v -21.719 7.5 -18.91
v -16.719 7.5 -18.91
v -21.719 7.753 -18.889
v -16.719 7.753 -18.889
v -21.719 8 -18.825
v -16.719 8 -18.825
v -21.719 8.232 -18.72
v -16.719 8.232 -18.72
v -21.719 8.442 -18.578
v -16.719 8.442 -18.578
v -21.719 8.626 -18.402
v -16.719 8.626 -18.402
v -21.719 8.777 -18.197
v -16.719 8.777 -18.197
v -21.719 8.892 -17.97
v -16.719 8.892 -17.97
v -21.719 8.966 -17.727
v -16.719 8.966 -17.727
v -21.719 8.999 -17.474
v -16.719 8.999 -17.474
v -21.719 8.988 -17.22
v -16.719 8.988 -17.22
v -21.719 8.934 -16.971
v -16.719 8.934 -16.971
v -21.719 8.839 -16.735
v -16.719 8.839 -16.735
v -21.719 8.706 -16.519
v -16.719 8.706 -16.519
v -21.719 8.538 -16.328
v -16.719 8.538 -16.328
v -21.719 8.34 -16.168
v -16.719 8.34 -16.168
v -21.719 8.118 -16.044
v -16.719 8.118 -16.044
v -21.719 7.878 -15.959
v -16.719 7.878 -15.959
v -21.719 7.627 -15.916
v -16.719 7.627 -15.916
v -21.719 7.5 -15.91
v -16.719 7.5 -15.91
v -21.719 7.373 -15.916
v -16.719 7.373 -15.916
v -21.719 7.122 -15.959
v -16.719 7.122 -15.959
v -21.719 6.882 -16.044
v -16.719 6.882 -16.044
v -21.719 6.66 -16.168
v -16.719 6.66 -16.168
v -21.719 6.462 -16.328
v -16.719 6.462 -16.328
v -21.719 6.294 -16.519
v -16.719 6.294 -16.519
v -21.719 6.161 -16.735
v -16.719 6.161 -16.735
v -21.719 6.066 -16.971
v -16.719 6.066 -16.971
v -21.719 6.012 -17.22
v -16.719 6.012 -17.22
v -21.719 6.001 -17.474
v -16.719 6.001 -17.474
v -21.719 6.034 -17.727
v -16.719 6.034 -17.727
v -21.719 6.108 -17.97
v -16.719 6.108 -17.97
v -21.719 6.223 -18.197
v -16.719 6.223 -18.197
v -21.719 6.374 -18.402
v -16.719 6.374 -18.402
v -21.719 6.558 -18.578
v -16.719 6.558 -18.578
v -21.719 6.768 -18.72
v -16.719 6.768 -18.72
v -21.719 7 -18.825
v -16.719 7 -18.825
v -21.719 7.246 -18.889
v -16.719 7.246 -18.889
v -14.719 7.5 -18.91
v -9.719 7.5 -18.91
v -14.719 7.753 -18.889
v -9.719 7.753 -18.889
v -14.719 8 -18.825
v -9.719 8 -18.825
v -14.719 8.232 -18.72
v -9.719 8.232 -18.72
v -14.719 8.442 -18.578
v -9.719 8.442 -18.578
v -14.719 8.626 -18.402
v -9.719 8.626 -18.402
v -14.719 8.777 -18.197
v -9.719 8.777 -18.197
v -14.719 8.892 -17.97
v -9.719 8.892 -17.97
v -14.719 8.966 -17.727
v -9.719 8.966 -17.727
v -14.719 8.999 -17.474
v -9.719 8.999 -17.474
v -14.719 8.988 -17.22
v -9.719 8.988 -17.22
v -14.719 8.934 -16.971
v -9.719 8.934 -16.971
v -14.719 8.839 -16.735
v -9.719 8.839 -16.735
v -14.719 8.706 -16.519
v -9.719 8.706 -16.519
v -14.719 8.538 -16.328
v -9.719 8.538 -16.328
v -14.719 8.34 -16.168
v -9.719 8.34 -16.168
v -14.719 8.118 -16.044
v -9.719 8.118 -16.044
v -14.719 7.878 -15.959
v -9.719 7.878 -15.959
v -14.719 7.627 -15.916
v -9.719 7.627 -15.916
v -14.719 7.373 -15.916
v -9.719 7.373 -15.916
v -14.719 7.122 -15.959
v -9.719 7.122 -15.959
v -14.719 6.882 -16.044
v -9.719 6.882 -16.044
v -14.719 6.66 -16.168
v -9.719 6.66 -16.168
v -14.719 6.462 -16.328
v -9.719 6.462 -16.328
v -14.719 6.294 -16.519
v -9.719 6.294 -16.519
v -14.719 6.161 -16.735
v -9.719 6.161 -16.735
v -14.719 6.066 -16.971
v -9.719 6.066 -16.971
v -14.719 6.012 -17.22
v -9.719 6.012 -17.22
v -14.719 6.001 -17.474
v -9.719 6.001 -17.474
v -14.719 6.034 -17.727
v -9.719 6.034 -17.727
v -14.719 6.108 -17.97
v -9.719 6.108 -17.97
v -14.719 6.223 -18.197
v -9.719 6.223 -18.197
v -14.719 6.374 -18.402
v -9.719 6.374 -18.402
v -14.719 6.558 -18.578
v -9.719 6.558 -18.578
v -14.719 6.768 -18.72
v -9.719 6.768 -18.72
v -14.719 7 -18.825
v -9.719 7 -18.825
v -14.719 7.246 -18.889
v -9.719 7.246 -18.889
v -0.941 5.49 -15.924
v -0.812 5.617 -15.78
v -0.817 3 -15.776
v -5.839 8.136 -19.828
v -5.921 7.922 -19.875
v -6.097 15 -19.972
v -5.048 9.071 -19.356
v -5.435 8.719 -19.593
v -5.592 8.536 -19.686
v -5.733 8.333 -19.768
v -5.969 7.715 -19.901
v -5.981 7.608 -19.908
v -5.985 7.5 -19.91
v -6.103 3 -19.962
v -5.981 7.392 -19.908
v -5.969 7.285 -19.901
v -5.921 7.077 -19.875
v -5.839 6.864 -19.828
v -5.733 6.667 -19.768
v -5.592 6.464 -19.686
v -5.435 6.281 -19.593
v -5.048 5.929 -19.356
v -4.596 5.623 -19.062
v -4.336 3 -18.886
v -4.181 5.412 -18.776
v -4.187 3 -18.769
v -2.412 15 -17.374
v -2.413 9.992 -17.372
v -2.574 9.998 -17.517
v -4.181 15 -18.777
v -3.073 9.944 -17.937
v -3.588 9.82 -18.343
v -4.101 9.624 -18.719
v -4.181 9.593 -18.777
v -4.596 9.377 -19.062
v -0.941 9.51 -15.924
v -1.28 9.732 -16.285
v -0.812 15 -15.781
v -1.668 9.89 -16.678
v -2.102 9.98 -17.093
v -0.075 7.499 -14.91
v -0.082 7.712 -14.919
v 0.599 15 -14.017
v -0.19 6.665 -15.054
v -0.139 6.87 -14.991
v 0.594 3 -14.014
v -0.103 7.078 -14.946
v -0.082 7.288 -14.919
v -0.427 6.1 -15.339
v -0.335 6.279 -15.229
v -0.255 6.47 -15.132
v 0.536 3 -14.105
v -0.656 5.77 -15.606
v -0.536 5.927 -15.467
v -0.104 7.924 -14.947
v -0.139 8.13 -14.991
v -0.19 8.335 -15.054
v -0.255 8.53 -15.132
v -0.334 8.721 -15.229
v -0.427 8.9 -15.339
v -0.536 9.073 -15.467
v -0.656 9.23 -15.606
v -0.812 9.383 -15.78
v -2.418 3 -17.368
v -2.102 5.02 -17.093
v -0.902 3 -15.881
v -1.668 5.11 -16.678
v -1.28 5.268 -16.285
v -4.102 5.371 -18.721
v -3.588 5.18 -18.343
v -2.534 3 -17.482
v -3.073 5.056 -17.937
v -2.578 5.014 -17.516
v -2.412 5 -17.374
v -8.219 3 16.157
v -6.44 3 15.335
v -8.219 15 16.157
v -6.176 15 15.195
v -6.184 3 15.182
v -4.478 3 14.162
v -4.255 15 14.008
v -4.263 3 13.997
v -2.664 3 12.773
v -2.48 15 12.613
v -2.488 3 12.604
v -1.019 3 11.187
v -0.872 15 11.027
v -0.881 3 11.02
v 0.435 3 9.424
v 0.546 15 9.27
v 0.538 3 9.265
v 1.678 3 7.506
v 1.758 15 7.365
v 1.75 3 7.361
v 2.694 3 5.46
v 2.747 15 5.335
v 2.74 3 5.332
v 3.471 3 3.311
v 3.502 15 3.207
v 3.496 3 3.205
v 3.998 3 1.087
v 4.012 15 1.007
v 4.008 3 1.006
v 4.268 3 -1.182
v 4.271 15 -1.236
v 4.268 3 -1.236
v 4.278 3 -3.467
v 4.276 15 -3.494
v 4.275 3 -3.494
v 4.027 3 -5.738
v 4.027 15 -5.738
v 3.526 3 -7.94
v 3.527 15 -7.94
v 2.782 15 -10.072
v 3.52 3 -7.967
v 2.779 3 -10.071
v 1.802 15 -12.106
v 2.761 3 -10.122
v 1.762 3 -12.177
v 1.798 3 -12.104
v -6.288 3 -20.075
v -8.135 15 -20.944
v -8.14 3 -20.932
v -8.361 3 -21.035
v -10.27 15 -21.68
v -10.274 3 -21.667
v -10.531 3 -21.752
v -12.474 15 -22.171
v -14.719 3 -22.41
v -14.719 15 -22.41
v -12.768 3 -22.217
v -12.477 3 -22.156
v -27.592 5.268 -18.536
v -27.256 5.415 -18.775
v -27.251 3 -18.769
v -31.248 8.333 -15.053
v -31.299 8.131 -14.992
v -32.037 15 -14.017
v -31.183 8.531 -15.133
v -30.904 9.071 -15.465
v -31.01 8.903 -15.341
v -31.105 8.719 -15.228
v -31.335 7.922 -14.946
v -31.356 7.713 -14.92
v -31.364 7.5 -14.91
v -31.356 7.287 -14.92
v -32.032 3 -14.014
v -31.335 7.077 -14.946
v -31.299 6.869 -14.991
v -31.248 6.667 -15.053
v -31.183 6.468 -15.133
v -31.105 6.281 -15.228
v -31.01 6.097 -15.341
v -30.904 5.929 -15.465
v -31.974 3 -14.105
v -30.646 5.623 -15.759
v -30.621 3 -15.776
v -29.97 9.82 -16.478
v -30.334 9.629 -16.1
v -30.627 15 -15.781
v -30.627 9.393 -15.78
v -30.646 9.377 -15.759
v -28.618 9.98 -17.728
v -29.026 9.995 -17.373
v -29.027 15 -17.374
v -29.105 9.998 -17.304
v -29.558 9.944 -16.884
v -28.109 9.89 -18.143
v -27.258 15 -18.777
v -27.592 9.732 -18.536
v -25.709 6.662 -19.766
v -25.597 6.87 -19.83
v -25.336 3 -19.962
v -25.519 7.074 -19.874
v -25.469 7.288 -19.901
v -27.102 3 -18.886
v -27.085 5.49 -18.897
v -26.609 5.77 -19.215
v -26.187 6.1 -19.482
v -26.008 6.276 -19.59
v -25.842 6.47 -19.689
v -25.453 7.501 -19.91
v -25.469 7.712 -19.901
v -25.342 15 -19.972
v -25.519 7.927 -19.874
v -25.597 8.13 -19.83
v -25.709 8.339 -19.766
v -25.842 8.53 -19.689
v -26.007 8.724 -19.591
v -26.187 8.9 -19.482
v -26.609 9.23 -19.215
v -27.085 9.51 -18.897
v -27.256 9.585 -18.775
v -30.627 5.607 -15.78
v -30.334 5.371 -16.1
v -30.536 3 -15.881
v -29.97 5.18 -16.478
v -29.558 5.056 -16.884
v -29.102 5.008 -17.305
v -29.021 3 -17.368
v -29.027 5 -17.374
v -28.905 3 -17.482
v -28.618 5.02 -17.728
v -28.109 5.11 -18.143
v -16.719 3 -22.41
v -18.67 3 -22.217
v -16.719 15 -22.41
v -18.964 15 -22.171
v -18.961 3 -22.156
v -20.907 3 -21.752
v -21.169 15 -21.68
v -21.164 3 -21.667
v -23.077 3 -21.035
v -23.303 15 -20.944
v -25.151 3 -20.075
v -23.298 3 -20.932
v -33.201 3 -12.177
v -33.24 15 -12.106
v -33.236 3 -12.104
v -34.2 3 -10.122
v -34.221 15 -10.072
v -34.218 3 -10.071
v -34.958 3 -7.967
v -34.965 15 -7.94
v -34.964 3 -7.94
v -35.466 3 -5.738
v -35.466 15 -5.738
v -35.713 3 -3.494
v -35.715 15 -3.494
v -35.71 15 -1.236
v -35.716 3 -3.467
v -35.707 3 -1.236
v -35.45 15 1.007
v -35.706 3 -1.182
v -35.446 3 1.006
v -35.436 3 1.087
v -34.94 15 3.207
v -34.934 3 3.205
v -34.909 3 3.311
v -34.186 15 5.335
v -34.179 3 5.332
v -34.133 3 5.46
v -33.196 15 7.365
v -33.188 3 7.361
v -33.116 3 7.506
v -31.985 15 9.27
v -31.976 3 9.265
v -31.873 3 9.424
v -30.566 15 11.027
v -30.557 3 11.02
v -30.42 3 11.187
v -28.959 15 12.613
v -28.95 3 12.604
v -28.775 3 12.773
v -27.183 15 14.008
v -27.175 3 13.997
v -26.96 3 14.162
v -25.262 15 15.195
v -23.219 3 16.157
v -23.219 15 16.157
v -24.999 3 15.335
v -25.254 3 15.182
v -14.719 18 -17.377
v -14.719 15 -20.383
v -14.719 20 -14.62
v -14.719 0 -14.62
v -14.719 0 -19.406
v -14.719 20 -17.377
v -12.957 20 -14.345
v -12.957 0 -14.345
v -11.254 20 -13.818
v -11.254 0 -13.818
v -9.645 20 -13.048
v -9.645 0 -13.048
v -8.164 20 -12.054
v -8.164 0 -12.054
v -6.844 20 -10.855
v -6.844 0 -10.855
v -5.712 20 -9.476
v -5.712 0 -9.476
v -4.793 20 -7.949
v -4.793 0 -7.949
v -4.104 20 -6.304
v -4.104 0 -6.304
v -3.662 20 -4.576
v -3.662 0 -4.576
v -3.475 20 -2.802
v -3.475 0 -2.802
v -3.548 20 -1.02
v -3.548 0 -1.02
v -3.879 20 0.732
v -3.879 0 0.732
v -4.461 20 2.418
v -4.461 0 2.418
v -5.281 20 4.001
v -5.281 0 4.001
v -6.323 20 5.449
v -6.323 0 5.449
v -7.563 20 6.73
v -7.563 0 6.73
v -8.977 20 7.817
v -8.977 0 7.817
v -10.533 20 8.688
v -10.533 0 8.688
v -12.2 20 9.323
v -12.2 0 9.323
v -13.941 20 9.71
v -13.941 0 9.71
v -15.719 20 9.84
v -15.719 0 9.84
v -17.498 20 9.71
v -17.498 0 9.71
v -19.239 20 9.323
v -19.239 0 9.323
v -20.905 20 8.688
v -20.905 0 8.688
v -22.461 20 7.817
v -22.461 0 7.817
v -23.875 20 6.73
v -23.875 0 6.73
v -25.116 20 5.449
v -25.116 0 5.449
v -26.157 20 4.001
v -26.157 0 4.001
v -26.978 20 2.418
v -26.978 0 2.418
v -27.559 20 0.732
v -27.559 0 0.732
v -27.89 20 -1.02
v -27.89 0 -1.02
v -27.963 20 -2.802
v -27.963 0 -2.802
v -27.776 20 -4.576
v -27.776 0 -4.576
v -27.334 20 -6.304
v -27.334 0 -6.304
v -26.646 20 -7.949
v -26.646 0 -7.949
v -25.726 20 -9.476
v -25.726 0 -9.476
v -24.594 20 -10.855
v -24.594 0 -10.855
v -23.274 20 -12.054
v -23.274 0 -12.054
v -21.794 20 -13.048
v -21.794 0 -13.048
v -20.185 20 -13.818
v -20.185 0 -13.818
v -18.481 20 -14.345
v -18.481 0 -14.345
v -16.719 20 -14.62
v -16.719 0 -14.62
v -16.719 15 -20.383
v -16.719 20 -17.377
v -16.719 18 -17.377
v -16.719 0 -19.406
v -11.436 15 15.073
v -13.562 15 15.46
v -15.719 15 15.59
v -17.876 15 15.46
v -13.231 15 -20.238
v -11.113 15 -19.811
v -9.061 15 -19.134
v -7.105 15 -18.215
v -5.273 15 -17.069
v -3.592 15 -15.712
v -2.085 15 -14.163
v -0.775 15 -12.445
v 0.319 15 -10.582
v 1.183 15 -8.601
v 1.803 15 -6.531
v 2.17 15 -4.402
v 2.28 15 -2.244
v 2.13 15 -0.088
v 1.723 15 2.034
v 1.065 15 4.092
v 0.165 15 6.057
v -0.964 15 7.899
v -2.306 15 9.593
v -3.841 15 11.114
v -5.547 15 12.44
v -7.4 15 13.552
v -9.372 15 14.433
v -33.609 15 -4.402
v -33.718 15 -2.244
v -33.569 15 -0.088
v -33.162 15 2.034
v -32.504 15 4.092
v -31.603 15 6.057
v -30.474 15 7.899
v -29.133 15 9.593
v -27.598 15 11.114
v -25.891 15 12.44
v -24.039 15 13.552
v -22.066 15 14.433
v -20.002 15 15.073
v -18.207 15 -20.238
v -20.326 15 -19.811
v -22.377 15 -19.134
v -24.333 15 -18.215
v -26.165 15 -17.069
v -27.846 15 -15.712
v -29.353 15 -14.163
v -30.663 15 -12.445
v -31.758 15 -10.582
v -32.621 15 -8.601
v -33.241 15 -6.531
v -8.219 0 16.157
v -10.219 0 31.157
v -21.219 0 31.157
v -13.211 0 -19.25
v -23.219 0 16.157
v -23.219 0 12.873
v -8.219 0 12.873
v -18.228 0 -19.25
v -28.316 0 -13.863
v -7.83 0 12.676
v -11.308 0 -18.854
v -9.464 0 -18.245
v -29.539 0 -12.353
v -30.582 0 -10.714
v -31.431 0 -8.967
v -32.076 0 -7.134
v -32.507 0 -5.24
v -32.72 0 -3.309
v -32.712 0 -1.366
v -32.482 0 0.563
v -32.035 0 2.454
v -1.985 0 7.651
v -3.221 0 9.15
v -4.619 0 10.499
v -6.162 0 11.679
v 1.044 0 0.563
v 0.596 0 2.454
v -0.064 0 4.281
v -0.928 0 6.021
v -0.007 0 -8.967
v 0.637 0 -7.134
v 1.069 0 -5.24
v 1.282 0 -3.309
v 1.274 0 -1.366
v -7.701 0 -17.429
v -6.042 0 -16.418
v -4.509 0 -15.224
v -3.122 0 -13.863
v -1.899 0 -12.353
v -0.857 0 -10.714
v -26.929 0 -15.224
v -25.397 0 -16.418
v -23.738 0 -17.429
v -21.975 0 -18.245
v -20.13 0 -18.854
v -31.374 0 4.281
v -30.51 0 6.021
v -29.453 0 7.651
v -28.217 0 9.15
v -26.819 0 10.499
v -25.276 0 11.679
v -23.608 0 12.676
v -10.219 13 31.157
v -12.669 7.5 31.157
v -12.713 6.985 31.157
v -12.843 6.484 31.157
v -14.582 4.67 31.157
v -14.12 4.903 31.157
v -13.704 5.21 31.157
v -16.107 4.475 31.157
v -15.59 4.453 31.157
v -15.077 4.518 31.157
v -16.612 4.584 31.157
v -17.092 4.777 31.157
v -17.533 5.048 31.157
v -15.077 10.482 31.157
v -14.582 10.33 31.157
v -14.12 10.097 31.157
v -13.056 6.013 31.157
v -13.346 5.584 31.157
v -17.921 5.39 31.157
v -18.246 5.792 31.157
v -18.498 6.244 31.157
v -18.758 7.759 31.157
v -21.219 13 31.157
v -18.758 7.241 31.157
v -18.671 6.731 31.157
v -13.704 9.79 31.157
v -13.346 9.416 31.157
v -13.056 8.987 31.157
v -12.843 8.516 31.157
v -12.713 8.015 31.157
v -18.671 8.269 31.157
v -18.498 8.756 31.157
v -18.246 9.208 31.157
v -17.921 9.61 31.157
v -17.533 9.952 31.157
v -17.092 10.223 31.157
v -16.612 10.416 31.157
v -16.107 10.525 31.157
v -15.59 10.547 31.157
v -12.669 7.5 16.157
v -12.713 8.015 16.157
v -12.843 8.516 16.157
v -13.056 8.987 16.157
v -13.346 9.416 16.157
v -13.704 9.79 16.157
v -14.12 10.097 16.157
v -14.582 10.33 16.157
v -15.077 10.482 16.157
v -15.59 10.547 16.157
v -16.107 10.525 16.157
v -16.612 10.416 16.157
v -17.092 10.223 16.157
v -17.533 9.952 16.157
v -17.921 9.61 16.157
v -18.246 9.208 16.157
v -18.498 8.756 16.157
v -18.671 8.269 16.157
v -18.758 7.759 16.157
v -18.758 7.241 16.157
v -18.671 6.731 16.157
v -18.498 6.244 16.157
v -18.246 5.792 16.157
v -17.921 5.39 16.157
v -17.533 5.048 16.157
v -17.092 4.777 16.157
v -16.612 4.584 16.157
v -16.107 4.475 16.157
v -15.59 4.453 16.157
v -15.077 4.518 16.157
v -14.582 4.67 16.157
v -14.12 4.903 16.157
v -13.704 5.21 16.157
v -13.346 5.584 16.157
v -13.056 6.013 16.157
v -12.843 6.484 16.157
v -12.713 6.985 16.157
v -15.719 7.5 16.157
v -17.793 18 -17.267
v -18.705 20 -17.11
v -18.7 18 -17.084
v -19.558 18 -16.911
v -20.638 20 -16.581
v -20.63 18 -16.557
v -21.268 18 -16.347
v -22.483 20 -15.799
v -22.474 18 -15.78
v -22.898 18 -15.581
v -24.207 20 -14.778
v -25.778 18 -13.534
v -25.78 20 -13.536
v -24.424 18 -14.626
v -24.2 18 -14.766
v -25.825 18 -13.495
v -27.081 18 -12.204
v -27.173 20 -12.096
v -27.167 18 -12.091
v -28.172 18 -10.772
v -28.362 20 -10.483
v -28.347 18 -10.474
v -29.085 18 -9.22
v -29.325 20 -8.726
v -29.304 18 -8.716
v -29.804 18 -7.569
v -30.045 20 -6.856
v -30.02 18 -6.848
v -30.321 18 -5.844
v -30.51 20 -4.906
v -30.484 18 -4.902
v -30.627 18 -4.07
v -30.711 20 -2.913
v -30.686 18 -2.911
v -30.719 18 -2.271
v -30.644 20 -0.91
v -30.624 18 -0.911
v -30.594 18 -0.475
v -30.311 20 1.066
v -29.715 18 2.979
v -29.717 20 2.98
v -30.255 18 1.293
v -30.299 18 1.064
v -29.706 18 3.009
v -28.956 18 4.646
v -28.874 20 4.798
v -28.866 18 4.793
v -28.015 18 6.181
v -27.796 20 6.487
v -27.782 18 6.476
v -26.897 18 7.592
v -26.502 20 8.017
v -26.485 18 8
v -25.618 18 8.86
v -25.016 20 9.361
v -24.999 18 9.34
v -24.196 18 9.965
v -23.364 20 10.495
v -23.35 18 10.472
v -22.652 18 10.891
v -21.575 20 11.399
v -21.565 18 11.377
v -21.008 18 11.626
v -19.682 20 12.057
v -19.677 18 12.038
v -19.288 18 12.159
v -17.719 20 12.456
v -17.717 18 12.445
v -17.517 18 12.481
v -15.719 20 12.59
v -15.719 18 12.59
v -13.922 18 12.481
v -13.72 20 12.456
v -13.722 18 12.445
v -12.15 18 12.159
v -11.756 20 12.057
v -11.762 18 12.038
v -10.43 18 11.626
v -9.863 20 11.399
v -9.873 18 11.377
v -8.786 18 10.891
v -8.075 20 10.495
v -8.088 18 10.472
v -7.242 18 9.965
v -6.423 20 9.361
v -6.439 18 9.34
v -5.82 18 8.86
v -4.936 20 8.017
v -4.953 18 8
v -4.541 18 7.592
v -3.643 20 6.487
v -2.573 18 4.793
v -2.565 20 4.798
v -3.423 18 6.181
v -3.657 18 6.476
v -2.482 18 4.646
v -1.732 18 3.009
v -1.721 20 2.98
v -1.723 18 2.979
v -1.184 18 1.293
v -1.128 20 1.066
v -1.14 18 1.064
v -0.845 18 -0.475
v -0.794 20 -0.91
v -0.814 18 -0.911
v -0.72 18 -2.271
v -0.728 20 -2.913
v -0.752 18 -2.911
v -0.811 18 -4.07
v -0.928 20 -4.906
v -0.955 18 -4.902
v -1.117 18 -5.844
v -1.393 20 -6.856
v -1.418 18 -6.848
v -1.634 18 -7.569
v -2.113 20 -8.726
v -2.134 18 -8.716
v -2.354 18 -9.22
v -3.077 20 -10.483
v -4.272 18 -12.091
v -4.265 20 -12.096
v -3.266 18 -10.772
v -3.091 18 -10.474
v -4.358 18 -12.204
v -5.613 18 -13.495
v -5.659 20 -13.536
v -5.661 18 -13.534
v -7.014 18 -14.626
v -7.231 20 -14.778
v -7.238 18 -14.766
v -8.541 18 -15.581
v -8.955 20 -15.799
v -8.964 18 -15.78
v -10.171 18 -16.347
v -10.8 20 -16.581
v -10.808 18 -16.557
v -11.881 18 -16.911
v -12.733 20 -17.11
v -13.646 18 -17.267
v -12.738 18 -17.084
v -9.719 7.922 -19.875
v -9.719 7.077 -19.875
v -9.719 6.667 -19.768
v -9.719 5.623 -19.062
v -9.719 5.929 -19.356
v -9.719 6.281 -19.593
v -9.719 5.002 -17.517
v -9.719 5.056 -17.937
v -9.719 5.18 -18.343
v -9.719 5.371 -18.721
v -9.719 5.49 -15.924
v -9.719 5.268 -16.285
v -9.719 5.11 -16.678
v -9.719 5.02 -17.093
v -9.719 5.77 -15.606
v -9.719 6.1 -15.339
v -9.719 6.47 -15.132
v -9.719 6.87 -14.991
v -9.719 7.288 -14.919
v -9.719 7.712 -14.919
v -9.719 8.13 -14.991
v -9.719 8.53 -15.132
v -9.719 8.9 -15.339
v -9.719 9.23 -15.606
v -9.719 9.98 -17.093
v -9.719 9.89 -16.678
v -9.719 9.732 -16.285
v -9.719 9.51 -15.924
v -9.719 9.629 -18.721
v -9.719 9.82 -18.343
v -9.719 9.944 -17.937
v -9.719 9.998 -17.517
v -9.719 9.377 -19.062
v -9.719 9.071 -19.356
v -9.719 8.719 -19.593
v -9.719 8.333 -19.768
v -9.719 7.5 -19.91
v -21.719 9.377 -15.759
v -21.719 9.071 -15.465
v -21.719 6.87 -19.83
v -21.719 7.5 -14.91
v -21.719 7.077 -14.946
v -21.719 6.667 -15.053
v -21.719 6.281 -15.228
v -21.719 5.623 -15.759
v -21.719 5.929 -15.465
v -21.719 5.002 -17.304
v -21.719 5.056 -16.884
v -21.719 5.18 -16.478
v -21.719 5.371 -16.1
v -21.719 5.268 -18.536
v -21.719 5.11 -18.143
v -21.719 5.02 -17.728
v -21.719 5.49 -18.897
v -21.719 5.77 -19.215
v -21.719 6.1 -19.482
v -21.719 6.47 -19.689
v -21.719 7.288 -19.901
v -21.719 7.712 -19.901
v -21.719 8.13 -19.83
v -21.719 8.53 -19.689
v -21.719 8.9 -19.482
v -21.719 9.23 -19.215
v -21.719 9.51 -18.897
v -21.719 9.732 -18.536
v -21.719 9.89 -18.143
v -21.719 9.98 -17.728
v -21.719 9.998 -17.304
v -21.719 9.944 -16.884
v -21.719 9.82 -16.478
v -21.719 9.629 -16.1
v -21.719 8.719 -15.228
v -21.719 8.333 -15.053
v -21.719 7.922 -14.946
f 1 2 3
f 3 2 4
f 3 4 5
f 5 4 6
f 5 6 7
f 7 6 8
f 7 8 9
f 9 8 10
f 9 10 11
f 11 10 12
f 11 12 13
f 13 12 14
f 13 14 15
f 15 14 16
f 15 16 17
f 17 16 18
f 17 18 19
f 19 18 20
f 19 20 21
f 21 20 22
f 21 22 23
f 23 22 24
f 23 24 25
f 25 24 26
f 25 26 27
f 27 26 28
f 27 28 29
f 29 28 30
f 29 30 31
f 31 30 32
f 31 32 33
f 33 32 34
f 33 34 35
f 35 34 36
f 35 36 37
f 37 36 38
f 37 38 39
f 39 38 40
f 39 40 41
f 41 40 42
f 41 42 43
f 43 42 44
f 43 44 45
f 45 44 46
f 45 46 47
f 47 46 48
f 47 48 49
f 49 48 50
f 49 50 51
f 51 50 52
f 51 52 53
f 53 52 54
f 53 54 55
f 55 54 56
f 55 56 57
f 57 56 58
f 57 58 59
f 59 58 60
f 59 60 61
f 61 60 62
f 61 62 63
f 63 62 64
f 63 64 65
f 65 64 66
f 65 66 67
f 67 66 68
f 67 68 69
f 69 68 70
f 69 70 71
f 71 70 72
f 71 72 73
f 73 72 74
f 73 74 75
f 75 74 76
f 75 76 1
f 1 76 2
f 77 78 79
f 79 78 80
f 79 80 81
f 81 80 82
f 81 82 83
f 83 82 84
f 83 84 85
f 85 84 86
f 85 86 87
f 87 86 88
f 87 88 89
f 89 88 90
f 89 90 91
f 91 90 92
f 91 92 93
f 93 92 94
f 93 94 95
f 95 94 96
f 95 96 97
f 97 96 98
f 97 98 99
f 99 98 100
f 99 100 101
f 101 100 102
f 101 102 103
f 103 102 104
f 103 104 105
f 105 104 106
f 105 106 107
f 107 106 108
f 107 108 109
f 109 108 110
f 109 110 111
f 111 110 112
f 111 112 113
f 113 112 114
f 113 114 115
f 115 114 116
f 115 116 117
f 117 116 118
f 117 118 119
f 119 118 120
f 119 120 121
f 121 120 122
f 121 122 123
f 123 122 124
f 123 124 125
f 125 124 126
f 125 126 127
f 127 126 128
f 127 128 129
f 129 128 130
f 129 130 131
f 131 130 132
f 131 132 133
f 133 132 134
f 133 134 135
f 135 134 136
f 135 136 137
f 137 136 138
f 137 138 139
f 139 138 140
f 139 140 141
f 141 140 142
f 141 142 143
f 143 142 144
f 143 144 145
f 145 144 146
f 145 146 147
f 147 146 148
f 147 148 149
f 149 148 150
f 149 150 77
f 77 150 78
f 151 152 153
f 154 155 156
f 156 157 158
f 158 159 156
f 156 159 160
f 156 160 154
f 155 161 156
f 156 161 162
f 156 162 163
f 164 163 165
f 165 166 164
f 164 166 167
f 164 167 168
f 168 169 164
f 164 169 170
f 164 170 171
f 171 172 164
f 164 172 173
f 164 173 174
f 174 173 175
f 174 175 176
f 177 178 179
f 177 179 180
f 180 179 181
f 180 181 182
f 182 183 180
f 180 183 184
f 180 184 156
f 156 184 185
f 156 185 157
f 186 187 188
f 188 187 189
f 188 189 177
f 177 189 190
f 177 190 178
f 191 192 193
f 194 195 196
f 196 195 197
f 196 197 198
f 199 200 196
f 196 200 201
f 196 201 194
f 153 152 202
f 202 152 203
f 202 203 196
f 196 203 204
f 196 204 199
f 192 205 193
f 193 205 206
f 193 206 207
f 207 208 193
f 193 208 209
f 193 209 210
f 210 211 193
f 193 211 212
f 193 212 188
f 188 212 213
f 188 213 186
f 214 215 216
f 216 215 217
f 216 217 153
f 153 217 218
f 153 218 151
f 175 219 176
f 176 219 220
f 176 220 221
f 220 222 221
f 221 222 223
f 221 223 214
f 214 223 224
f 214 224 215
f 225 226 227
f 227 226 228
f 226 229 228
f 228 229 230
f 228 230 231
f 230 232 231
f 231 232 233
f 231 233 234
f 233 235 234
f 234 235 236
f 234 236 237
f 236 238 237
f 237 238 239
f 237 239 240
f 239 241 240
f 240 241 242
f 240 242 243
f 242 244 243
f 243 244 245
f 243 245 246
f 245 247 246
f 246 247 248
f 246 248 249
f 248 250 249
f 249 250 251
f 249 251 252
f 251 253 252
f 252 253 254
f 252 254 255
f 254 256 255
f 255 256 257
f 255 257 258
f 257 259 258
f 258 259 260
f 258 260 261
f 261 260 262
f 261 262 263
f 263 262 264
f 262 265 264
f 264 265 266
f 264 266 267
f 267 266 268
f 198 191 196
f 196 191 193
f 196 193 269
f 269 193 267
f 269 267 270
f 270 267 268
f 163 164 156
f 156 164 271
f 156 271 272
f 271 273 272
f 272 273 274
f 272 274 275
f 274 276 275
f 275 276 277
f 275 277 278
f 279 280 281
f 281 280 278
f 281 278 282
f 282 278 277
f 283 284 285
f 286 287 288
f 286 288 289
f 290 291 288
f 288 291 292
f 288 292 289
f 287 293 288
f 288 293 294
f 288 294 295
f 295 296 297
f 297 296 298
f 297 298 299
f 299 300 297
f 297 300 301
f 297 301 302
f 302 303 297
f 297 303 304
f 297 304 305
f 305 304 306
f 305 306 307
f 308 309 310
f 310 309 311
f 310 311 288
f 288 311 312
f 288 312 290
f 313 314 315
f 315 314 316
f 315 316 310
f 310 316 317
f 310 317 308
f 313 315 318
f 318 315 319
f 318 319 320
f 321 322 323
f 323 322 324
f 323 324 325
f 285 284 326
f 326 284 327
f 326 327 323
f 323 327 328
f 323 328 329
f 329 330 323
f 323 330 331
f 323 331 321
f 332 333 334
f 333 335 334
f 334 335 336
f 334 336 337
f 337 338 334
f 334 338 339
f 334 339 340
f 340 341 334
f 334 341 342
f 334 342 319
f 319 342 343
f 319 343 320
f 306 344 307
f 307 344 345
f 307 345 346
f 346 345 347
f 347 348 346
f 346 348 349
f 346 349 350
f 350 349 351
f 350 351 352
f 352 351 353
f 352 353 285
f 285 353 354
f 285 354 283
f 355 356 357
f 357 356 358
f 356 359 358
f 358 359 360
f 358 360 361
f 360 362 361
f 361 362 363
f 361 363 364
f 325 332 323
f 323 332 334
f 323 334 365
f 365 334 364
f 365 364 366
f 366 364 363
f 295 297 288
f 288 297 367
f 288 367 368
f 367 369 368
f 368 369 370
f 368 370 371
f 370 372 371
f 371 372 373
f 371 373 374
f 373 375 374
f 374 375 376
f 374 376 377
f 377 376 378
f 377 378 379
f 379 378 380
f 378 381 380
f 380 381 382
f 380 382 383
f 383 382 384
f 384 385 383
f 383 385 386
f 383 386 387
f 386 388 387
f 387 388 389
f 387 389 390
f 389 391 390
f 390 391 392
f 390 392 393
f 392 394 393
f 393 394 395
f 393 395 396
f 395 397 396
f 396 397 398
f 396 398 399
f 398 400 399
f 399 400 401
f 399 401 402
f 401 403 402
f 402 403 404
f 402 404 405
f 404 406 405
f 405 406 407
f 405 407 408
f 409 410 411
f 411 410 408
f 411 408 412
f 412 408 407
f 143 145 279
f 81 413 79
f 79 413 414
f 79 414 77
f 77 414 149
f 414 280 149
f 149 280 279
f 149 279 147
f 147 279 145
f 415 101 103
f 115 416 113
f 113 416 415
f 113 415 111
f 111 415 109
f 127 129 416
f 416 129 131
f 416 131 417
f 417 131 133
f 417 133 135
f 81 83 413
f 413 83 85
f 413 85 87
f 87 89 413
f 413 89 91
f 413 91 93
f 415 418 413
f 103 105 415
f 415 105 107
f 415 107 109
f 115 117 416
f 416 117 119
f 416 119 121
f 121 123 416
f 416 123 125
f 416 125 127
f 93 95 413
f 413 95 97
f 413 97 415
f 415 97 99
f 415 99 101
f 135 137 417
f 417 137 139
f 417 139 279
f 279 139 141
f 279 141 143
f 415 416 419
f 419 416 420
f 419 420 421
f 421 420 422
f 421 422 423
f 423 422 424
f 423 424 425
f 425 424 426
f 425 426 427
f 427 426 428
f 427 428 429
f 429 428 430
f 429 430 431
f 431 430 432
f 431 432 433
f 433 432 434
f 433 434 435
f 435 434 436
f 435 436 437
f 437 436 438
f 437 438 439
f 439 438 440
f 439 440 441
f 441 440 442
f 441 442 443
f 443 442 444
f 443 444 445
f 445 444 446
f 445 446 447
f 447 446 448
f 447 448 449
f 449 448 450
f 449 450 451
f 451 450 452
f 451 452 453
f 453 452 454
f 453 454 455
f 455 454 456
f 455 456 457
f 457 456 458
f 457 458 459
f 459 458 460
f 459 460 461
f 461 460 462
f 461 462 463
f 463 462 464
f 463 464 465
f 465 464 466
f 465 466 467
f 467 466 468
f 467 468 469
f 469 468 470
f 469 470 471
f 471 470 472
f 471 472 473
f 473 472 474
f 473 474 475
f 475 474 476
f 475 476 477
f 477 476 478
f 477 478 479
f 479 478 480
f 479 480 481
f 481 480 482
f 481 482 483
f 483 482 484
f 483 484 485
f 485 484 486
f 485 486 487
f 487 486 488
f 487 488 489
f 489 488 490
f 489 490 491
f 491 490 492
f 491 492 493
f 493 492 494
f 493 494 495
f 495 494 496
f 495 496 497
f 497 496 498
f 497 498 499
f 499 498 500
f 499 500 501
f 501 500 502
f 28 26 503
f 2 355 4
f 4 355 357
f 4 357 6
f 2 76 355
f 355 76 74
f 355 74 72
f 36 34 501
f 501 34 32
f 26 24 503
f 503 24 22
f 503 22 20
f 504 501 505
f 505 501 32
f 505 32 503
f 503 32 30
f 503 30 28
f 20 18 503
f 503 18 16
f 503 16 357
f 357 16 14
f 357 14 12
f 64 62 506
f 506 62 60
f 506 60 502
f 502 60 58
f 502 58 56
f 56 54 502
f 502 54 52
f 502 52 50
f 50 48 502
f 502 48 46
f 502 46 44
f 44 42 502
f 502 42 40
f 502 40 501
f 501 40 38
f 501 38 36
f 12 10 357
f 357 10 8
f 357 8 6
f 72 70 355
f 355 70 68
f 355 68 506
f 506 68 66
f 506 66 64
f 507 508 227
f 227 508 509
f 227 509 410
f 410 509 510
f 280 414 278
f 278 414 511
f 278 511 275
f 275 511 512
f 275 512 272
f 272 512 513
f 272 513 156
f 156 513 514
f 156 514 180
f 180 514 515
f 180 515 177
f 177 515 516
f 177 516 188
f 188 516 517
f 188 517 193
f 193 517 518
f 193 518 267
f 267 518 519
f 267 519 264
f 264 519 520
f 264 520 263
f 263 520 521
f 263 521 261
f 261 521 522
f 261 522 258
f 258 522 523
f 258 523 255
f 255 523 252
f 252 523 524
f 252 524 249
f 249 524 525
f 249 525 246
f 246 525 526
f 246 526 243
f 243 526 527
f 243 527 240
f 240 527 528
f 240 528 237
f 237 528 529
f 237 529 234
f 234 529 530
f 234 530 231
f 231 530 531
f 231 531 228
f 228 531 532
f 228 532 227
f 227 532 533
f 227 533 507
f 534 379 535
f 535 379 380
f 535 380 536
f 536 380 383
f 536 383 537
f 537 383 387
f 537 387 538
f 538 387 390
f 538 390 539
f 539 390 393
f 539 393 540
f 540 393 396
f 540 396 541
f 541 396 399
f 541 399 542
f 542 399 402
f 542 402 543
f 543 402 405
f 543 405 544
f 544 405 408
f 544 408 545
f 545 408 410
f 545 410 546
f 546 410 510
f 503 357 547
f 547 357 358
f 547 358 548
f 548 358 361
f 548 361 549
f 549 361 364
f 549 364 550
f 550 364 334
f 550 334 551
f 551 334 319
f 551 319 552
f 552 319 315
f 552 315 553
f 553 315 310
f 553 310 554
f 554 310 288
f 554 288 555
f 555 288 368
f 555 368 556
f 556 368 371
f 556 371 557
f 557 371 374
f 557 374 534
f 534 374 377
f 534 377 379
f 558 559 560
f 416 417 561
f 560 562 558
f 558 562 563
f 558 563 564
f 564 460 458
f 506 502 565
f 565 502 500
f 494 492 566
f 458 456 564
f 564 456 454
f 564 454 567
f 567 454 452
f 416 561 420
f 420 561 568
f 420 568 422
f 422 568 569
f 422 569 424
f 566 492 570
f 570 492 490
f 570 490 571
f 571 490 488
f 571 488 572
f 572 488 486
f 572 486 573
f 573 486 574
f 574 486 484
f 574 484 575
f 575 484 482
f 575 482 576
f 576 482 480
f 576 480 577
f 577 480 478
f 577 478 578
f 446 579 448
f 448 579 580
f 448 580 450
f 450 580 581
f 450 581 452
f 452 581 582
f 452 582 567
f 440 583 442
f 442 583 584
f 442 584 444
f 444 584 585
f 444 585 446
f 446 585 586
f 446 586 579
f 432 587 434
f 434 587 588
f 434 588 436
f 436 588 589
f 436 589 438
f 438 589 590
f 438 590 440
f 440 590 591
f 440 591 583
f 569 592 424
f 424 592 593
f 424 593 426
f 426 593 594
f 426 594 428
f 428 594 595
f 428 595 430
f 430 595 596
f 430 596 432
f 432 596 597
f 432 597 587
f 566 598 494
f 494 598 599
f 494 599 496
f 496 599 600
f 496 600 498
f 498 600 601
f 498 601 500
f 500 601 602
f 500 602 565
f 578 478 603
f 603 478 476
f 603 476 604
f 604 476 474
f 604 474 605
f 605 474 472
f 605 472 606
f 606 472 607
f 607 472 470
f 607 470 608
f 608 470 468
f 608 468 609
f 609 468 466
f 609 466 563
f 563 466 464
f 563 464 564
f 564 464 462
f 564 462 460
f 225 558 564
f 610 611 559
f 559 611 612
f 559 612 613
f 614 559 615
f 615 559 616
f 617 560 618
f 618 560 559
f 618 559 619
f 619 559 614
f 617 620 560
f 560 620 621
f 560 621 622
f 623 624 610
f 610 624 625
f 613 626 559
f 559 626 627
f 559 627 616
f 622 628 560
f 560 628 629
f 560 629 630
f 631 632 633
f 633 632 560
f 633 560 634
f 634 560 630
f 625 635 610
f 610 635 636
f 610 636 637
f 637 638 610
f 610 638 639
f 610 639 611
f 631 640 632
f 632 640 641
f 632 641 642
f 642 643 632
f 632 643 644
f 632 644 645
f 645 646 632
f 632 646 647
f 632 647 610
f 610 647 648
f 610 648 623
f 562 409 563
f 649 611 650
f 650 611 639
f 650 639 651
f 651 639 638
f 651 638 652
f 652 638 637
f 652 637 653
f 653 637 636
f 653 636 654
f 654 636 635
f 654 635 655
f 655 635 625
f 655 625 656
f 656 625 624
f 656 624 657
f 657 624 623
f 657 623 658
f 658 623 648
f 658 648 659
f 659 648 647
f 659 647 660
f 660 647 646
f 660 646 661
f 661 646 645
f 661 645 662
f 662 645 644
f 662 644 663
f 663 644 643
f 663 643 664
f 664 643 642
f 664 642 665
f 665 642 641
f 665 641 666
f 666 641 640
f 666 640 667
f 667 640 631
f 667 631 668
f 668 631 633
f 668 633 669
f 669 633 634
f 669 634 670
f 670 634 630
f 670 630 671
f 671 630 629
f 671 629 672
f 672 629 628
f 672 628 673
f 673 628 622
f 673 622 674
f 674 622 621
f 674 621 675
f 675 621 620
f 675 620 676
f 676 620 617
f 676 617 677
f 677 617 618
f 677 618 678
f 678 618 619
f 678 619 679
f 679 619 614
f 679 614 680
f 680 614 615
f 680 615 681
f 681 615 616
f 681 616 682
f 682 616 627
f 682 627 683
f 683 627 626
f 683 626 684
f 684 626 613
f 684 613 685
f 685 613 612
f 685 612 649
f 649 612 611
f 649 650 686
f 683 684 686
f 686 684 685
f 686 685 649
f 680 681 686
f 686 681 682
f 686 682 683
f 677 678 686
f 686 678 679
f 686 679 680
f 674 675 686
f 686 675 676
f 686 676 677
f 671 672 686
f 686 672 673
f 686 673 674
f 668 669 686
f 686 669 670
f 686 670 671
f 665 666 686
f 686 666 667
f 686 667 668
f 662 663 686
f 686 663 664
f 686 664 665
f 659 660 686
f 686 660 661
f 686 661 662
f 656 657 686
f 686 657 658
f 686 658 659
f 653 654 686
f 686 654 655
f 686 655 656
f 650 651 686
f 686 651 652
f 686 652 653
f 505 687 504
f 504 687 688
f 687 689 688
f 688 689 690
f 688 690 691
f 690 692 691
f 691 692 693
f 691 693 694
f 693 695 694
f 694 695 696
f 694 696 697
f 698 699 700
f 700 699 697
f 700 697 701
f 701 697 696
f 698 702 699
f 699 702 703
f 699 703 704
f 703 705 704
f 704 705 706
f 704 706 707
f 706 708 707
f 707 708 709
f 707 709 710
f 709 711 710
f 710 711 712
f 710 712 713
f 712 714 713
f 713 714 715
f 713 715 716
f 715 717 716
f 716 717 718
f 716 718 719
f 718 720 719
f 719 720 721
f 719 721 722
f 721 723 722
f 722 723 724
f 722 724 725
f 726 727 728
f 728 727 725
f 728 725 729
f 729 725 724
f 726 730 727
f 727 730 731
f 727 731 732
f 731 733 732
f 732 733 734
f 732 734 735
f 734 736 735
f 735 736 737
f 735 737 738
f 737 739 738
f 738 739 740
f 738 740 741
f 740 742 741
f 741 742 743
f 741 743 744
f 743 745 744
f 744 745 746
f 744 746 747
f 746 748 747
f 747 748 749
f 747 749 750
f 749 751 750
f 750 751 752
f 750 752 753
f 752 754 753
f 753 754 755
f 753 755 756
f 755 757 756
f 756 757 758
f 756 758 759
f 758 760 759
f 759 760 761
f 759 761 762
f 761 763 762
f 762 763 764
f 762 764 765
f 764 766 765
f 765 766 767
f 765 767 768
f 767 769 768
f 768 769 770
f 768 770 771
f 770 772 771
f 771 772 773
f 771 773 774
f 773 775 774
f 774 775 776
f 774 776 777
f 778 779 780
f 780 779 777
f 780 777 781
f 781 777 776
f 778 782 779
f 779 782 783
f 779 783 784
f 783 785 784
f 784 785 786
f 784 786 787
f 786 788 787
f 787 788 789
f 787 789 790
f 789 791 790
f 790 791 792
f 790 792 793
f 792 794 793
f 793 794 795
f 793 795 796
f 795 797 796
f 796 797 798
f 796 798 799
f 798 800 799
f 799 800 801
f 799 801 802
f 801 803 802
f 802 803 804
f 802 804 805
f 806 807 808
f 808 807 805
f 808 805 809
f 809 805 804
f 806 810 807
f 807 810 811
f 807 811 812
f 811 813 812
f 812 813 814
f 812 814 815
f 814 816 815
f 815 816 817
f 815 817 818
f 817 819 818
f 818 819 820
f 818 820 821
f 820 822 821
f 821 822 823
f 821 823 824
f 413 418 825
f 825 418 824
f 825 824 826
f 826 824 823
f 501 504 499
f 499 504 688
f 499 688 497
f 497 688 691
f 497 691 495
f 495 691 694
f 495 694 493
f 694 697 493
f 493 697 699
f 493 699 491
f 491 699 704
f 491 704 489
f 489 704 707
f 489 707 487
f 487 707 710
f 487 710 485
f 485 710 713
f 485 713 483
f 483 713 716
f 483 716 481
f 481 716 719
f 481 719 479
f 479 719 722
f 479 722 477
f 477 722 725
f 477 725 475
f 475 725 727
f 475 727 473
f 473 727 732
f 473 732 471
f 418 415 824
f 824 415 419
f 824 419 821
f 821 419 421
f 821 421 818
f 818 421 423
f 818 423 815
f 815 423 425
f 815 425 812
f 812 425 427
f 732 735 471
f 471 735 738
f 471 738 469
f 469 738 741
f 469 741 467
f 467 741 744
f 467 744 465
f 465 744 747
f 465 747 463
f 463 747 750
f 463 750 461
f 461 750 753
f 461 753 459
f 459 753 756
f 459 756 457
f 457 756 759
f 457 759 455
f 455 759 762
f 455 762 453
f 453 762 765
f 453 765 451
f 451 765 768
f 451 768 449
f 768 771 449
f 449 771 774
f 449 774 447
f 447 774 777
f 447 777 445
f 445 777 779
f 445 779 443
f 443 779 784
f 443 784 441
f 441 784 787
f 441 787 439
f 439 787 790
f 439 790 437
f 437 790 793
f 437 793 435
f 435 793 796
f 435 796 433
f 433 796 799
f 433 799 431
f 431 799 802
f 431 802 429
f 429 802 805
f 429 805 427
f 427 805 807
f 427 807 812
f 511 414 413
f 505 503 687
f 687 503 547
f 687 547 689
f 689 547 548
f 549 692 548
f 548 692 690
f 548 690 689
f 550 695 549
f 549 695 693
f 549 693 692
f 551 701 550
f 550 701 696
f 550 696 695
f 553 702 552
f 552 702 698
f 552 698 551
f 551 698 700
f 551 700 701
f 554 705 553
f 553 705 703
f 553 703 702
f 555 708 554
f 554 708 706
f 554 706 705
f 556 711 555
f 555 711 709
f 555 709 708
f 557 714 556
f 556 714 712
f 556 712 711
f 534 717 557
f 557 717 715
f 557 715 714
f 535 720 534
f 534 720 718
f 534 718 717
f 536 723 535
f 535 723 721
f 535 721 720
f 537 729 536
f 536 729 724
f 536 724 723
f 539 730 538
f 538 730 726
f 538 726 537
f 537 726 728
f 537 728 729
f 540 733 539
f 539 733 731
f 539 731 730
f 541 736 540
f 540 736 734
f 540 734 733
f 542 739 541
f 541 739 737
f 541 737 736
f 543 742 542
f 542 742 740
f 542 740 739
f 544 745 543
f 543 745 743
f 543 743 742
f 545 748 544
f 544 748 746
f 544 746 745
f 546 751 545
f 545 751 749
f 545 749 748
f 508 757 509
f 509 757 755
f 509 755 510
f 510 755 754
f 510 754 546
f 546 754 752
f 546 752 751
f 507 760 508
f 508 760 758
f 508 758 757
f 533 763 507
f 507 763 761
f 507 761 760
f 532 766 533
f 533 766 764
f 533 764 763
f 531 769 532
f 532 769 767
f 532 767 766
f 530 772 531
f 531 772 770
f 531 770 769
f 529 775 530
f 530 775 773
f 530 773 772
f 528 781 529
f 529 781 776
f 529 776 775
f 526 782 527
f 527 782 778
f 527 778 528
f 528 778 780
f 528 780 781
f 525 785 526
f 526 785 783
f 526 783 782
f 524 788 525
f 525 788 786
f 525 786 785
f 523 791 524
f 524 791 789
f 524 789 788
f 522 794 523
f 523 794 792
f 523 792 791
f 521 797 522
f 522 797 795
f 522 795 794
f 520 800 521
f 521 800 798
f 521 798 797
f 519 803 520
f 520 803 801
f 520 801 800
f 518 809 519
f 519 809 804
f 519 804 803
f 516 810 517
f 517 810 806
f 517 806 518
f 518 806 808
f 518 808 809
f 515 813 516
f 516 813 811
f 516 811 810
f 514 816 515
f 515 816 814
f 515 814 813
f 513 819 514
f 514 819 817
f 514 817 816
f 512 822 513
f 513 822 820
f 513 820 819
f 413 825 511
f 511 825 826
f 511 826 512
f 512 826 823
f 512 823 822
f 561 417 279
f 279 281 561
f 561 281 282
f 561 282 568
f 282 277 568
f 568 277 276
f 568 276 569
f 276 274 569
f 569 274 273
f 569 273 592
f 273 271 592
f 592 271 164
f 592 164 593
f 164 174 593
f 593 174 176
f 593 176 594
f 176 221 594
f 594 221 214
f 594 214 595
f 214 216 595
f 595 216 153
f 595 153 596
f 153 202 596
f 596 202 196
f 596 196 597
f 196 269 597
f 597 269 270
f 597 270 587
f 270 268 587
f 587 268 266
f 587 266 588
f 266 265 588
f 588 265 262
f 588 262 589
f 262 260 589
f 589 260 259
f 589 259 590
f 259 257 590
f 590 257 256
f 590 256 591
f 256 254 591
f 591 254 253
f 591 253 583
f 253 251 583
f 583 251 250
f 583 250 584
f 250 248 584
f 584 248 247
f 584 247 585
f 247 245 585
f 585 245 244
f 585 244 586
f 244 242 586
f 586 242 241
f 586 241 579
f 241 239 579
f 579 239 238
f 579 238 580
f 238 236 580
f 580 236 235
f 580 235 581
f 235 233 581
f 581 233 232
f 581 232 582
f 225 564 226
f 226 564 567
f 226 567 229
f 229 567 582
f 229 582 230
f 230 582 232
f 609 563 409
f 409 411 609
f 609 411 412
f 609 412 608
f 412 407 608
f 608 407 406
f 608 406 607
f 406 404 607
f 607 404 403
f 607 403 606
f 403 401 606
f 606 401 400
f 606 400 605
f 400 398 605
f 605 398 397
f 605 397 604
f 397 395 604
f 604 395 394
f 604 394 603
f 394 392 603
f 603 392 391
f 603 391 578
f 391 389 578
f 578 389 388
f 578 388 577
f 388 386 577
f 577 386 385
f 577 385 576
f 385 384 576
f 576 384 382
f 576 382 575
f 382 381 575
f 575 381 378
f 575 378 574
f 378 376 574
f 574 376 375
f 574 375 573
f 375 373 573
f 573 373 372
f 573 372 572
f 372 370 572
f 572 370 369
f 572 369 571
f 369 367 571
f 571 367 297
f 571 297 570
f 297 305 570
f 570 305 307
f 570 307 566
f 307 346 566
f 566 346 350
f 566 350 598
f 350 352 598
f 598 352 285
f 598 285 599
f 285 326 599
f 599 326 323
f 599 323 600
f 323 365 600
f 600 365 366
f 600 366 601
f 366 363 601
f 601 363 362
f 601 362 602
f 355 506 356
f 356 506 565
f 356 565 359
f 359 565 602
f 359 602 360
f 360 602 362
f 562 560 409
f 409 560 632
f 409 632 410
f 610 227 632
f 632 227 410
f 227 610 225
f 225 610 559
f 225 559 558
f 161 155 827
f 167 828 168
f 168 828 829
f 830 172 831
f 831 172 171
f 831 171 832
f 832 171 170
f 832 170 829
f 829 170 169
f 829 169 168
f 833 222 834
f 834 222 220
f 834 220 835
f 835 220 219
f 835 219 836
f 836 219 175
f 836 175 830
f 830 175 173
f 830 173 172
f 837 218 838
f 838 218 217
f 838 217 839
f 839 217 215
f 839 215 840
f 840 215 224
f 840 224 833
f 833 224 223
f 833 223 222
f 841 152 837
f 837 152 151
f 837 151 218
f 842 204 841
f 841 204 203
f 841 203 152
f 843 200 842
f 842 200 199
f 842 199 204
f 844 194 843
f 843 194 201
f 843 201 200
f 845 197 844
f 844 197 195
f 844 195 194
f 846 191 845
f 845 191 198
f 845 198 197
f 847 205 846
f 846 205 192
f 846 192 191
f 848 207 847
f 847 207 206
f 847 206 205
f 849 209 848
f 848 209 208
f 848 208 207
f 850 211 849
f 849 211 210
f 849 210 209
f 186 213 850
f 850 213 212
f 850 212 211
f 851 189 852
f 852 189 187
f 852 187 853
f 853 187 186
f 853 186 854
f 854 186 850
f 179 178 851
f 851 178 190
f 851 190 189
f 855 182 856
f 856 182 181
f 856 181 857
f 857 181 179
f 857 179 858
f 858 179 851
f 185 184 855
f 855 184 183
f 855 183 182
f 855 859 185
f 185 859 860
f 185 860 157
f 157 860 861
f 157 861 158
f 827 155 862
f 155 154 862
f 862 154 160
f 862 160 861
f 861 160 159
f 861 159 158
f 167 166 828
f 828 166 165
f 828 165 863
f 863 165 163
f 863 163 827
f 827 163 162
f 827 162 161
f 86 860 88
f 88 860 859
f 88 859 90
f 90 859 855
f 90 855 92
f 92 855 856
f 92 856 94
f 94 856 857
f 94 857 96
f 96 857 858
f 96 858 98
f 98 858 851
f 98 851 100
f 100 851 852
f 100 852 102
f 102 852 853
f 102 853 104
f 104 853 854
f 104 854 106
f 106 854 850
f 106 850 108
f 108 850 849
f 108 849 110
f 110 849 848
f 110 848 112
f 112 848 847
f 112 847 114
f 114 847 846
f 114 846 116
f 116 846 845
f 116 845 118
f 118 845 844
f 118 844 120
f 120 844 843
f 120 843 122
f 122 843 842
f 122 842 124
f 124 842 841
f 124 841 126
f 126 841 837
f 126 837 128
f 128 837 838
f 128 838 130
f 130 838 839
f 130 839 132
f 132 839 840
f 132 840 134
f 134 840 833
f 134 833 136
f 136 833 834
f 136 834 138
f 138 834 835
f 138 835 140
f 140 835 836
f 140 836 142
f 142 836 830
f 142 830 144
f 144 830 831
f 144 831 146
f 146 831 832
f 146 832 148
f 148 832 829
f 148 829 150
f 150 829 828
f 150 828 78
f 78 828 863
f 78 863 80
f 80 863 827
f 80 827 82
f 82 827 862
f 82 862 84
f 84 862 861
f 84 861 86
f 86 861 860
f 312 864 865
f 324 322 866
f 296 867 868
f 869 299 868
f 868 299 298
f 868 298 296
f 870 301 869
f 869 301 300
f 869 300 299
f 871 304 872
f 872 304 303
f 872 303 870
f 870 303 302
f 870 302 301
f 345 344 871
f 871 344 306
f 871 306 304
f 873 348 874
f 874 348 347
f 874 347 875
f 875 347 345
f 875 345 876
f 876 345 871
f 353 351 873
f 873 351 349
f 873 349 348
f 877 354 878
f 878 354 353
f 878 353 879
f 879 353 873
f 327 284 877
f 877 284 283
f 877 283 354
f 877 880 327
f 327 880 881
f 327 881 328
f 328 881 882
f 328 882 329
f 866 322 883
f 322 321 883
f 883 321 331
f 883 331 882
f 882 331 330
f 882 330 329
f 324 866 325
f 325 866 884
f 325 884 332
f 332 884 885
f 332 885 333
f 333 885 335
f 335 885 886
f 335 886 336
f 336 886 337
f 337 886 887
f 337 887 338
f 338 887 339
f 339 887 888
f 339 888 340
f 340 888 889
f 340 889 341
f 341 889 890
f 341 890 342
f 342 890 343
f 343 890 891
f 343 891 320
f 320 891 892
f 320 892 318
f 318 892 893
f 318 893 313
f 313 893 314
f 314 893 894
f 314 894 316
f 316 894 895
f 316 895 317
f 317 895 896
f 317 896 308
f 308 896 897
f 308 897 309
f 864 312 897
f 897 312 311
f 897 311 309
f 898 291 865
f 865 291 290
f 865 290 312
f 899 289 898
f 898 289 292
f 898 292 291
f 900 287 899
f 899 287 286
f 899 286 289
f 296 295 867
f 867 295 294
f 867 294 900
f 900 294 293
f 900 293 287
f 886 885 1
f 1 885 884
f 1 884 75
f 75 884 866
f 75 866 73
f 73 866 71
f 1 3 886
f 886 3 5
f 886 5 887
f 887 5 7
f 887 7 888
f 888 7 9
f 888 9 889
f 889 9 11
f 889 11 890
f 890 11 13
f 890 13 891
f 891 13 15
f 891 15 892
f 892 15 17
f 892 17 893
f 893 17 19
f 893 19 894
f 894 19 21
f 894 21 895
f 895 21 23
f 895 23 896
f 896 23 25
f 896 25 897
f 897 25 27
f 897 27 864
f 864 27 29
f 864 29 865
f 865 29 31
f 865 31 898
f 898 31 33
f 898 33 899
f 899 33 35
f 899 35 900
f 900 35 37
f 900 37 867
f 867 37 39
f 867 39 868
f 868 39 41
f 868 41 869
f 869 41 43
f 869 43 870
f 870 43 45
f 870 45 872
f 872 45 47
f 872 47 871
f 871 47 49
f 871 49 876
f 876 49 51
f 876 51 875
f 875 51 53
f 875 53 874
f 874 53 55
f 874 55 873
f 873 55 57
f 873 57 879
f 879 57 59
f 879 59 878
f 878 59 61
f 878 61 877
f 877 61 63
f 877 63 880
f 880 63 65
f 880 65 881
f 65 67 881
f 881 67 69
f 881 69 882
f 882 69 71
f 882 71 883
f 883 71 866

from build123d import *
from OCP.BRepFilletAPI import BRepFilletAPI_MakeChamfer

# Parameters (mm, degrees)
BOSS_EXTRUDE1_DEPTH     = 15
SKETCH2_R               = 3.05
CUT_EXTRUDE1_DEPTH      = 15
BOSS_EXTRUDE2_DEPTH     = 5
CHAMFER4_SIZE           = 3
CHAMFER6_SIZE           = 15
CHAMFER6_SIZE_2         = 2
CUT_EXTRUDE2_DEPTH      = 29
CUT_EXTRUDE2_DEPTH_BACK = 25
SKETCH4_R               = 1.5
SKETCH5_R               = 2.5
CUT_EXTRUDE3_DEPTH      = 14.024984395
CUT_EXTRUDE4_START      = -14.024984395
SKETCH6_R               = 2.5
CUT_EXTRUDE4_DEPTH      = 14.024984395


with BuildPart() as part:
    # Sketch1 → Boss-Extrude1 (new body)
    with BuildSketch(Plane(origin=(0, 0, 0), x_dir=(1, 0, 0), z_dir=(0, 1, 0))):
        with BuildLine():
            ThreePointArc((-14.719179189, 14.619614321), (-15.719179189, -9.839501126), (-16.719179189, 14.619614321))
            Line((-16.719179189, 14.619614321), (-16.719179189, 22.410498874))
            ThreePointArc((-16.719179189, 22.410498874), (-35.465683849, 5.738494325), (-23.219179189, -16.156945753))
            Line((-23.219179189, -16.156945753), (-23.219179189, -31.156945753))
            Line((-23.219179189, -31.156945753), (-8.219179189, -31.156945753))
            Line((-8.219179189, -31.156945753), (-8.219179189, -16.156945753))
            ThreePointArc((-8.219179189, -16.156945753), (4.02732547, 5.738494325), (-14.719179189, 22.410498874))
            Line((-14.719179189, 22.410498874), (-14.719179189, 14.619614321))
        make_face()
    extrude(amount=BOSS_EXTRUDE1_DEPTH)

    # Sketch2 → Cut-Extrude1 (cut)
    with BuildSketch(Plane.XY.offset(31.156945753)):
        with Locations((-15.719179189, 7.5)):
            Circle(SKETCH2_R)
    extrude(amount=-CUT_EXTRUDE1_DEPTH, mode=Mode.SUBTRACT)

    # Sketch3 → Boss-Extrude2 (add)
    with BuildSketch(Plane(origin=(0, 15, 0), x_dir=(1, 0, 0), z_dir=(0, 1, 0))):
        with BuildLine():
            Line((-16.719179189, 14.619614321), (-16.719179189, 17.377128421))
            ThreePointArc((-16.719179189, 17.377128421), (-25.966129955, -8.543952276), (-0.719179189, 2.410498874))
            ThreePointArc((-0.719179189, 2.410498874), (-4.764728039, 12.65744964), (-14.719179189, 17.377128421))
            Line((-14.719179189, 17.377128421), (-14.719179189, 14.619614321))
            ThreePointArc((-14.719179189, 14.619614321), (-6.710502816, 10.711477732), (-3.469179189, 2.410498874))
            ThreePointArc((-3.469179189, 2.410498874), (-24.020158047, -6.598177499), (-16.719179189, 14.619614321))
        make_face()
    extrude(amount=BOSS_EXTRUDE2_DEPTH)

    # Chamfer4
    chamfer4_edges = [part.edges().sort_by_distance(p)[0] for p in [
        (-25.966129955, 15, 8.543952276),
        (-35.465683849, 0, -5.738494325),
        (4.02732547, 0, -5.738494325),
    ]]
    chamfer(chamfer4_edges, length=CHAMFER4_SIZE)

    # Chamfer6
    chamfer6_edges_1 = [part.edges().sort_by_distance(p)[0] for p in [
        (-23.219179189, 7.5, 31.156945753),
    ]]
    chamfer6_side_1 = [part.faces().sort_by_distance(p)[0] for p in [
        (-23.219179189, 7.5, 31.116945753),
    ]]
    chamfer6_edges_2 = [part.edges().sort_by_distance(p)[0] for p in [
        (-8.219179189, 7.5, 31.156945753),
    ]]
    chamfer6_side_2 = [part.faces().sort_by_distance(p)[0] for p in [
        (-8.259179189, 7.5, 31.156945753),
    ]]
    chamfer6_edges_3 = [part.edges().sort_by_distance(p)[0] for p in [
        (-15.719179189, 15, 31.156945753),
    ]]
    chamfer6_side_3 = [part.faces().sort_by_distance(p)[0] for p in [
        (-15.719179189, 14.96, 31.156945753),
    ]]
    chamfer6 = BRepFilletAPI_MakeChamfer(part.part.solid().wrapped)
    for e in chamfer6_edges_1:
        chamfer6.Add(CHAMFER6_SIZE - 0.0001, CHAMFER6_SIZE_2 - 0.0001, e.wrapped, chamfer6_side_1[0].wrapped)
    for e in chamfer6_edges_2:
        chamfer6.Add(CHAMFER6_SIZE_2 - 0.0001, CHAMFER6_SIZE - 0.0001, e.wrapped, chamfer6_side_2[0].wrapped)
    for e in chamfer6_edges_3:
        chamfer6.Add(CHAMFER6_SIZE_2 - 0.0001, CHAMFER6_SIZE - 0.0001, e.wrapped, chamfer6_side_3[0].wrapped)
    add(Compound.cast(chamfer6.Shape()), mode=Mode.REPLACE)  # a hair under: the kernel refuses the full size

    # Sketch4 → Cut-Extrude2 (cut, two sides: drawn at the far end of the back side and taken through both)
    with BuildSketch(Plane.ZY.offset(14.719179189).offset(-CUT_EXTRUDE2_DEPTH_BACK)):
        with Locations(Location((-17.410498874, 7.5, 0), (0, 0, 180))):
            Circle(SKETCH4_R)
    extrude(amount=CUT_EXTRUDE2_DEPTH + CUT_EXTRUDE2_DEPTH_BACK, mode=Mode.SUBTRACT)

    # Sketch5 → Cut-Extrude3 (cut)
    with BuildSketch(Plane(origin=(4.305805205, 0, 0), x_dir=(0, 0, -1), z_dir=(1, 0, 0))):
        with Locations((17.410498874, 7.5)):
            Circle(SKETCH5_R)
    extrude(amount=-CUT_EXTRUDE3_DEPTH, mode=Mode.SUBTRACT)

    # Sketch6 → Cut-Extrude4 (cut)
    with BuildSketch(Plane.ZY.offset(35.744163584).offset(CUT_EXTRUDE4_START)):
        with Locations(Location((-17.410498874, 7.5, 0), (0, 0, 180))):
            Circle(SKETCH6_R)
    extrude(amount=CUT_EXTRUDE4_DEPTH, mode=Mode.SUBTRACT)


solid = part.part
